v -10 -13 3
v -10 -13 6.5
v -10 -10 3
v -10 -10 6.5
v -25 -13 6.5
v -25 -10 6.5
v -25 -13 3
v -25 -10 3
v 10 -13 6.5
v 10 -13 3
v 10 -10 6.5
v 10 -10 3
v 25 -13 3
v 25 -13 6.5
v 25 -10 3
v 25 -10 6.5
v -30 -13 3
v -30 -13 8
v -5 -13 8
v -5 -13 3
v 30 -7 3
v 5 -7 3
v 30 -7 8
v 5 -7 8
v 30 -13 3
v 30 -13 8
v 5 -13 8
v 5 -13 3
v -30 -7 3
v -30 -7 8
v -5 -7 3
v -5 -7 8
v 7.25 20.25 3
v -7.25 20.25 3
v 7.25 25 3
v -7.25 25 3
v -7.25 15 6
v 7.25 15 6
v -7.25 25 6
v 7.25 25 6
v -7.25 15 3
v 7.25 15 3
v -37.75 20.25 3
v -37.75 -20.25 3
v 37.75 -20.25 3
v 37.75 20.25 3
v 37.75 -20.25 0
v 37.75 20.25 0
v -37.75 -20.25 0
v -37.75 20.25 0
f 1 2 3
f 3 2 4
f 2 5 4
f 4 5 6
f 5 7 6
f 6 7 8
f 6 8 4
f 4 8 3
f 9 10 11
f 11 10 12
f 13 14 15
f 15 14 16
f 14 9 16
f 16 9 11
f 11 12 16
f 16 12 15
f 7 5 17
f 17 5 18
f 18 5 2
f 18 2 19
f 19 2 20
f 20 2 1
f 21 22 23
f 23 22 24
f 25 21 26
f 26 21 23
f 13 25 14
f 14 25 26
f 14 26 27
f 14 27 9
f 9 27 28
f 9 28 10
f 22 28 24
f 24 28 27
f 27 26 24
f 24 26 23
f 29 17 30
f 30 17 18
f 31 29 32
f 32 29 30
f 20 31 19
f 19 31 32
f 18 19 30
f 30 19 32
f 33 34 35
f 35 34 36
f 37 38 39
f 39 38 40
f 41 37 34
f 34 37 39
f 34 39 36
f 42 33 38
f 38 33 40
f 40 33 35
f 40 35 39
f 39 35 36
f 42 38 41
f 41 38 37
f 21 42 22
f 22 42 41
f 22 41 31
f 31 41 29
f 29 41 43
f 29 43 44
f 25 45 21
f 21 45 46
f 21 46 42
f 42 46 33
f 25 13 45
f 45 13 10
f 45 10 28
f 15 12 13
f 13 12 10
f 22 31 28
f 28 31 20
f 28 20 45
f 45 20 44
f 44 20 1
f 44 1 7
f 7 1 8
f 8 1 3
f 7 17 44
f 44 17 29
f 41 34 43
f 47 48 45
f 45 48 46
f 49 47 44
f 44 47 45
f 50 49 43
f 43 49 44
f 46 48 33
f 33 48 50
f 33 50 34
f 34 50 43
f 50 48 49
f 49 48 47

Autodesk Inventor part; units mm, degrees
ref_plane "YZ Plane" through (0, 0, 0) normal (1, 0, 0) x (0, 1, 0)
ref_plane "XY Plane" through (0, 0, 0) normal (0, 0, 1) x (1, 0, 0)
sketch "Sketch1" plane through (0, 0, 0) normal (0, 0, 1) x (1, 0, 0)
  line L0 (37.75, -20.25) -> (-37.75, -20.25)
  line L1 (-37.75, -20.25) -> (-37.75, 20.25)
  line L2 (-37.75, 20.25) -> (37.75, 20.25)
  line L3 (37.75, 20.25) -> (37.75, -20.25)
  point P0 (0, 0)
  point P1 (0, 20.25)
  point P2 (37.75, 0)
  dimension "d0" = 40.5
  dimension "d1" = 75.5
extrude "Extrusion1" add sketch "Sketch1" along normal blind 3
sketch "Sketch2" plane through (-37.75, 20.25, 0) normal (0, 1, 0) x (1, 0, 0)
  point P0 (37.75, 0)
ref_plane "Work Plane1" through (0, 15, 0) normal (0, 1, 0) x (-1, 0, 0)
sketch "Sketch3" plane through (0, 15, 0) normal (0, 1, 0) x (-1, 0, 0)
  line L0 (-37.75, 3) -> (37.75, 3) projected
  line L1 (7.25, 3) -> (-7.25, 3)
  line L2 (-7.25, 3) -> (-7.25, 6)
  line L3 (-7.25, 6) -> (7.25, 6)
  line L4 (7.25, 6) -> (7.25, 3)
  line L5 (7.25, 3) -> (-7.25, 3)
  point P0 (0, 6)
  point P1 (0, 3)
  dimension "d20" = 14.5
  dimension "d21" = 3
extrude "Extrusion2" add sketch "Sketch3" along normal blind 10
sketch "Sketch4" plane through (0, 0, 3) normal (0, 0, 1) x (1, 0, 0)
  line L0 (-30, -7) -> (-5, -7)
  line L1 (-5, -7) -> (-5, -13)
  line L2 (-5, -13) -> (-30, -13)
  line L3 (-30, -13) -> (-30, -7)
  line L4 (37.75, 20.25) -> (-37.75, 20.25) projected
  line L5 (0, 20.25) -> (0, -20.25) construction
  line L6 (-37.75, -20.25) -> (37.75, -20.25) projected
  line L7 (30, -7) -> (5, -7)
  line L8 (5, -7) -> (5, -13)
  line L9 (5, -13) -> (30, -13)
  line L10 (30, -13) -> (30, -7)
  point P0 (0, 0)
  point P1 (-5, -10)
  point P2 (-17.5, -7)
  point P3 (7.25, 20.25)
  point P4 (-7.25, 20.25)
  point P5 (0, 0)
  dimension "d9" = 25
  dimension "d10" = 6
  dimension "d11" = 5
  dimension "d12" = 7
extrude "Extrusion3" add sketch "Sketch4" along normal blind 5
sketch "Sketch5" plane through (-30, -13, 3) normal (0, -1, 0) x (1, 0, 0)
  line L0 (25, 0) -> (0, 0) projected
  line L1 (5, 0) -> (20, 0)
  line L2 (20, 0) -> (20, 3.5)
  line L3 (20, 3.5) -> (5, 3.5)
  line L4 (5, 3.5) -> (5, 0)
  line L5 (35, 5) -> (60, 5) projected
  line L6 (0, 0) -> (0, 5) projected
  line L7 (0, 5) -> (25, 5) projected
  line L8 (30, -3) -> (30, 5) construction
  line L9 (55, 0) -> (40, 0)
  line L10 (40, 0) -> (40, 3.5)
  line L11 (40, 3.5) -> (55, 3.5)
  line L12 (55, 3.5) -> (55, 0)
  point P0 (47.5, 5)
  point P1 (0, 2.5)
  point P2 (12.5, 3.5)
  point P3 (12.5, 5)
  point P4 (47.5, 3.5)
  point P5 (20, 0)
  dimension "d15" = 15
  dimension "d16" = 3.5
extrude "Extrusion4" cut sketch "Sketch5" against normal blind 3
properties part number "Pomodoro Robot Torso's back"
